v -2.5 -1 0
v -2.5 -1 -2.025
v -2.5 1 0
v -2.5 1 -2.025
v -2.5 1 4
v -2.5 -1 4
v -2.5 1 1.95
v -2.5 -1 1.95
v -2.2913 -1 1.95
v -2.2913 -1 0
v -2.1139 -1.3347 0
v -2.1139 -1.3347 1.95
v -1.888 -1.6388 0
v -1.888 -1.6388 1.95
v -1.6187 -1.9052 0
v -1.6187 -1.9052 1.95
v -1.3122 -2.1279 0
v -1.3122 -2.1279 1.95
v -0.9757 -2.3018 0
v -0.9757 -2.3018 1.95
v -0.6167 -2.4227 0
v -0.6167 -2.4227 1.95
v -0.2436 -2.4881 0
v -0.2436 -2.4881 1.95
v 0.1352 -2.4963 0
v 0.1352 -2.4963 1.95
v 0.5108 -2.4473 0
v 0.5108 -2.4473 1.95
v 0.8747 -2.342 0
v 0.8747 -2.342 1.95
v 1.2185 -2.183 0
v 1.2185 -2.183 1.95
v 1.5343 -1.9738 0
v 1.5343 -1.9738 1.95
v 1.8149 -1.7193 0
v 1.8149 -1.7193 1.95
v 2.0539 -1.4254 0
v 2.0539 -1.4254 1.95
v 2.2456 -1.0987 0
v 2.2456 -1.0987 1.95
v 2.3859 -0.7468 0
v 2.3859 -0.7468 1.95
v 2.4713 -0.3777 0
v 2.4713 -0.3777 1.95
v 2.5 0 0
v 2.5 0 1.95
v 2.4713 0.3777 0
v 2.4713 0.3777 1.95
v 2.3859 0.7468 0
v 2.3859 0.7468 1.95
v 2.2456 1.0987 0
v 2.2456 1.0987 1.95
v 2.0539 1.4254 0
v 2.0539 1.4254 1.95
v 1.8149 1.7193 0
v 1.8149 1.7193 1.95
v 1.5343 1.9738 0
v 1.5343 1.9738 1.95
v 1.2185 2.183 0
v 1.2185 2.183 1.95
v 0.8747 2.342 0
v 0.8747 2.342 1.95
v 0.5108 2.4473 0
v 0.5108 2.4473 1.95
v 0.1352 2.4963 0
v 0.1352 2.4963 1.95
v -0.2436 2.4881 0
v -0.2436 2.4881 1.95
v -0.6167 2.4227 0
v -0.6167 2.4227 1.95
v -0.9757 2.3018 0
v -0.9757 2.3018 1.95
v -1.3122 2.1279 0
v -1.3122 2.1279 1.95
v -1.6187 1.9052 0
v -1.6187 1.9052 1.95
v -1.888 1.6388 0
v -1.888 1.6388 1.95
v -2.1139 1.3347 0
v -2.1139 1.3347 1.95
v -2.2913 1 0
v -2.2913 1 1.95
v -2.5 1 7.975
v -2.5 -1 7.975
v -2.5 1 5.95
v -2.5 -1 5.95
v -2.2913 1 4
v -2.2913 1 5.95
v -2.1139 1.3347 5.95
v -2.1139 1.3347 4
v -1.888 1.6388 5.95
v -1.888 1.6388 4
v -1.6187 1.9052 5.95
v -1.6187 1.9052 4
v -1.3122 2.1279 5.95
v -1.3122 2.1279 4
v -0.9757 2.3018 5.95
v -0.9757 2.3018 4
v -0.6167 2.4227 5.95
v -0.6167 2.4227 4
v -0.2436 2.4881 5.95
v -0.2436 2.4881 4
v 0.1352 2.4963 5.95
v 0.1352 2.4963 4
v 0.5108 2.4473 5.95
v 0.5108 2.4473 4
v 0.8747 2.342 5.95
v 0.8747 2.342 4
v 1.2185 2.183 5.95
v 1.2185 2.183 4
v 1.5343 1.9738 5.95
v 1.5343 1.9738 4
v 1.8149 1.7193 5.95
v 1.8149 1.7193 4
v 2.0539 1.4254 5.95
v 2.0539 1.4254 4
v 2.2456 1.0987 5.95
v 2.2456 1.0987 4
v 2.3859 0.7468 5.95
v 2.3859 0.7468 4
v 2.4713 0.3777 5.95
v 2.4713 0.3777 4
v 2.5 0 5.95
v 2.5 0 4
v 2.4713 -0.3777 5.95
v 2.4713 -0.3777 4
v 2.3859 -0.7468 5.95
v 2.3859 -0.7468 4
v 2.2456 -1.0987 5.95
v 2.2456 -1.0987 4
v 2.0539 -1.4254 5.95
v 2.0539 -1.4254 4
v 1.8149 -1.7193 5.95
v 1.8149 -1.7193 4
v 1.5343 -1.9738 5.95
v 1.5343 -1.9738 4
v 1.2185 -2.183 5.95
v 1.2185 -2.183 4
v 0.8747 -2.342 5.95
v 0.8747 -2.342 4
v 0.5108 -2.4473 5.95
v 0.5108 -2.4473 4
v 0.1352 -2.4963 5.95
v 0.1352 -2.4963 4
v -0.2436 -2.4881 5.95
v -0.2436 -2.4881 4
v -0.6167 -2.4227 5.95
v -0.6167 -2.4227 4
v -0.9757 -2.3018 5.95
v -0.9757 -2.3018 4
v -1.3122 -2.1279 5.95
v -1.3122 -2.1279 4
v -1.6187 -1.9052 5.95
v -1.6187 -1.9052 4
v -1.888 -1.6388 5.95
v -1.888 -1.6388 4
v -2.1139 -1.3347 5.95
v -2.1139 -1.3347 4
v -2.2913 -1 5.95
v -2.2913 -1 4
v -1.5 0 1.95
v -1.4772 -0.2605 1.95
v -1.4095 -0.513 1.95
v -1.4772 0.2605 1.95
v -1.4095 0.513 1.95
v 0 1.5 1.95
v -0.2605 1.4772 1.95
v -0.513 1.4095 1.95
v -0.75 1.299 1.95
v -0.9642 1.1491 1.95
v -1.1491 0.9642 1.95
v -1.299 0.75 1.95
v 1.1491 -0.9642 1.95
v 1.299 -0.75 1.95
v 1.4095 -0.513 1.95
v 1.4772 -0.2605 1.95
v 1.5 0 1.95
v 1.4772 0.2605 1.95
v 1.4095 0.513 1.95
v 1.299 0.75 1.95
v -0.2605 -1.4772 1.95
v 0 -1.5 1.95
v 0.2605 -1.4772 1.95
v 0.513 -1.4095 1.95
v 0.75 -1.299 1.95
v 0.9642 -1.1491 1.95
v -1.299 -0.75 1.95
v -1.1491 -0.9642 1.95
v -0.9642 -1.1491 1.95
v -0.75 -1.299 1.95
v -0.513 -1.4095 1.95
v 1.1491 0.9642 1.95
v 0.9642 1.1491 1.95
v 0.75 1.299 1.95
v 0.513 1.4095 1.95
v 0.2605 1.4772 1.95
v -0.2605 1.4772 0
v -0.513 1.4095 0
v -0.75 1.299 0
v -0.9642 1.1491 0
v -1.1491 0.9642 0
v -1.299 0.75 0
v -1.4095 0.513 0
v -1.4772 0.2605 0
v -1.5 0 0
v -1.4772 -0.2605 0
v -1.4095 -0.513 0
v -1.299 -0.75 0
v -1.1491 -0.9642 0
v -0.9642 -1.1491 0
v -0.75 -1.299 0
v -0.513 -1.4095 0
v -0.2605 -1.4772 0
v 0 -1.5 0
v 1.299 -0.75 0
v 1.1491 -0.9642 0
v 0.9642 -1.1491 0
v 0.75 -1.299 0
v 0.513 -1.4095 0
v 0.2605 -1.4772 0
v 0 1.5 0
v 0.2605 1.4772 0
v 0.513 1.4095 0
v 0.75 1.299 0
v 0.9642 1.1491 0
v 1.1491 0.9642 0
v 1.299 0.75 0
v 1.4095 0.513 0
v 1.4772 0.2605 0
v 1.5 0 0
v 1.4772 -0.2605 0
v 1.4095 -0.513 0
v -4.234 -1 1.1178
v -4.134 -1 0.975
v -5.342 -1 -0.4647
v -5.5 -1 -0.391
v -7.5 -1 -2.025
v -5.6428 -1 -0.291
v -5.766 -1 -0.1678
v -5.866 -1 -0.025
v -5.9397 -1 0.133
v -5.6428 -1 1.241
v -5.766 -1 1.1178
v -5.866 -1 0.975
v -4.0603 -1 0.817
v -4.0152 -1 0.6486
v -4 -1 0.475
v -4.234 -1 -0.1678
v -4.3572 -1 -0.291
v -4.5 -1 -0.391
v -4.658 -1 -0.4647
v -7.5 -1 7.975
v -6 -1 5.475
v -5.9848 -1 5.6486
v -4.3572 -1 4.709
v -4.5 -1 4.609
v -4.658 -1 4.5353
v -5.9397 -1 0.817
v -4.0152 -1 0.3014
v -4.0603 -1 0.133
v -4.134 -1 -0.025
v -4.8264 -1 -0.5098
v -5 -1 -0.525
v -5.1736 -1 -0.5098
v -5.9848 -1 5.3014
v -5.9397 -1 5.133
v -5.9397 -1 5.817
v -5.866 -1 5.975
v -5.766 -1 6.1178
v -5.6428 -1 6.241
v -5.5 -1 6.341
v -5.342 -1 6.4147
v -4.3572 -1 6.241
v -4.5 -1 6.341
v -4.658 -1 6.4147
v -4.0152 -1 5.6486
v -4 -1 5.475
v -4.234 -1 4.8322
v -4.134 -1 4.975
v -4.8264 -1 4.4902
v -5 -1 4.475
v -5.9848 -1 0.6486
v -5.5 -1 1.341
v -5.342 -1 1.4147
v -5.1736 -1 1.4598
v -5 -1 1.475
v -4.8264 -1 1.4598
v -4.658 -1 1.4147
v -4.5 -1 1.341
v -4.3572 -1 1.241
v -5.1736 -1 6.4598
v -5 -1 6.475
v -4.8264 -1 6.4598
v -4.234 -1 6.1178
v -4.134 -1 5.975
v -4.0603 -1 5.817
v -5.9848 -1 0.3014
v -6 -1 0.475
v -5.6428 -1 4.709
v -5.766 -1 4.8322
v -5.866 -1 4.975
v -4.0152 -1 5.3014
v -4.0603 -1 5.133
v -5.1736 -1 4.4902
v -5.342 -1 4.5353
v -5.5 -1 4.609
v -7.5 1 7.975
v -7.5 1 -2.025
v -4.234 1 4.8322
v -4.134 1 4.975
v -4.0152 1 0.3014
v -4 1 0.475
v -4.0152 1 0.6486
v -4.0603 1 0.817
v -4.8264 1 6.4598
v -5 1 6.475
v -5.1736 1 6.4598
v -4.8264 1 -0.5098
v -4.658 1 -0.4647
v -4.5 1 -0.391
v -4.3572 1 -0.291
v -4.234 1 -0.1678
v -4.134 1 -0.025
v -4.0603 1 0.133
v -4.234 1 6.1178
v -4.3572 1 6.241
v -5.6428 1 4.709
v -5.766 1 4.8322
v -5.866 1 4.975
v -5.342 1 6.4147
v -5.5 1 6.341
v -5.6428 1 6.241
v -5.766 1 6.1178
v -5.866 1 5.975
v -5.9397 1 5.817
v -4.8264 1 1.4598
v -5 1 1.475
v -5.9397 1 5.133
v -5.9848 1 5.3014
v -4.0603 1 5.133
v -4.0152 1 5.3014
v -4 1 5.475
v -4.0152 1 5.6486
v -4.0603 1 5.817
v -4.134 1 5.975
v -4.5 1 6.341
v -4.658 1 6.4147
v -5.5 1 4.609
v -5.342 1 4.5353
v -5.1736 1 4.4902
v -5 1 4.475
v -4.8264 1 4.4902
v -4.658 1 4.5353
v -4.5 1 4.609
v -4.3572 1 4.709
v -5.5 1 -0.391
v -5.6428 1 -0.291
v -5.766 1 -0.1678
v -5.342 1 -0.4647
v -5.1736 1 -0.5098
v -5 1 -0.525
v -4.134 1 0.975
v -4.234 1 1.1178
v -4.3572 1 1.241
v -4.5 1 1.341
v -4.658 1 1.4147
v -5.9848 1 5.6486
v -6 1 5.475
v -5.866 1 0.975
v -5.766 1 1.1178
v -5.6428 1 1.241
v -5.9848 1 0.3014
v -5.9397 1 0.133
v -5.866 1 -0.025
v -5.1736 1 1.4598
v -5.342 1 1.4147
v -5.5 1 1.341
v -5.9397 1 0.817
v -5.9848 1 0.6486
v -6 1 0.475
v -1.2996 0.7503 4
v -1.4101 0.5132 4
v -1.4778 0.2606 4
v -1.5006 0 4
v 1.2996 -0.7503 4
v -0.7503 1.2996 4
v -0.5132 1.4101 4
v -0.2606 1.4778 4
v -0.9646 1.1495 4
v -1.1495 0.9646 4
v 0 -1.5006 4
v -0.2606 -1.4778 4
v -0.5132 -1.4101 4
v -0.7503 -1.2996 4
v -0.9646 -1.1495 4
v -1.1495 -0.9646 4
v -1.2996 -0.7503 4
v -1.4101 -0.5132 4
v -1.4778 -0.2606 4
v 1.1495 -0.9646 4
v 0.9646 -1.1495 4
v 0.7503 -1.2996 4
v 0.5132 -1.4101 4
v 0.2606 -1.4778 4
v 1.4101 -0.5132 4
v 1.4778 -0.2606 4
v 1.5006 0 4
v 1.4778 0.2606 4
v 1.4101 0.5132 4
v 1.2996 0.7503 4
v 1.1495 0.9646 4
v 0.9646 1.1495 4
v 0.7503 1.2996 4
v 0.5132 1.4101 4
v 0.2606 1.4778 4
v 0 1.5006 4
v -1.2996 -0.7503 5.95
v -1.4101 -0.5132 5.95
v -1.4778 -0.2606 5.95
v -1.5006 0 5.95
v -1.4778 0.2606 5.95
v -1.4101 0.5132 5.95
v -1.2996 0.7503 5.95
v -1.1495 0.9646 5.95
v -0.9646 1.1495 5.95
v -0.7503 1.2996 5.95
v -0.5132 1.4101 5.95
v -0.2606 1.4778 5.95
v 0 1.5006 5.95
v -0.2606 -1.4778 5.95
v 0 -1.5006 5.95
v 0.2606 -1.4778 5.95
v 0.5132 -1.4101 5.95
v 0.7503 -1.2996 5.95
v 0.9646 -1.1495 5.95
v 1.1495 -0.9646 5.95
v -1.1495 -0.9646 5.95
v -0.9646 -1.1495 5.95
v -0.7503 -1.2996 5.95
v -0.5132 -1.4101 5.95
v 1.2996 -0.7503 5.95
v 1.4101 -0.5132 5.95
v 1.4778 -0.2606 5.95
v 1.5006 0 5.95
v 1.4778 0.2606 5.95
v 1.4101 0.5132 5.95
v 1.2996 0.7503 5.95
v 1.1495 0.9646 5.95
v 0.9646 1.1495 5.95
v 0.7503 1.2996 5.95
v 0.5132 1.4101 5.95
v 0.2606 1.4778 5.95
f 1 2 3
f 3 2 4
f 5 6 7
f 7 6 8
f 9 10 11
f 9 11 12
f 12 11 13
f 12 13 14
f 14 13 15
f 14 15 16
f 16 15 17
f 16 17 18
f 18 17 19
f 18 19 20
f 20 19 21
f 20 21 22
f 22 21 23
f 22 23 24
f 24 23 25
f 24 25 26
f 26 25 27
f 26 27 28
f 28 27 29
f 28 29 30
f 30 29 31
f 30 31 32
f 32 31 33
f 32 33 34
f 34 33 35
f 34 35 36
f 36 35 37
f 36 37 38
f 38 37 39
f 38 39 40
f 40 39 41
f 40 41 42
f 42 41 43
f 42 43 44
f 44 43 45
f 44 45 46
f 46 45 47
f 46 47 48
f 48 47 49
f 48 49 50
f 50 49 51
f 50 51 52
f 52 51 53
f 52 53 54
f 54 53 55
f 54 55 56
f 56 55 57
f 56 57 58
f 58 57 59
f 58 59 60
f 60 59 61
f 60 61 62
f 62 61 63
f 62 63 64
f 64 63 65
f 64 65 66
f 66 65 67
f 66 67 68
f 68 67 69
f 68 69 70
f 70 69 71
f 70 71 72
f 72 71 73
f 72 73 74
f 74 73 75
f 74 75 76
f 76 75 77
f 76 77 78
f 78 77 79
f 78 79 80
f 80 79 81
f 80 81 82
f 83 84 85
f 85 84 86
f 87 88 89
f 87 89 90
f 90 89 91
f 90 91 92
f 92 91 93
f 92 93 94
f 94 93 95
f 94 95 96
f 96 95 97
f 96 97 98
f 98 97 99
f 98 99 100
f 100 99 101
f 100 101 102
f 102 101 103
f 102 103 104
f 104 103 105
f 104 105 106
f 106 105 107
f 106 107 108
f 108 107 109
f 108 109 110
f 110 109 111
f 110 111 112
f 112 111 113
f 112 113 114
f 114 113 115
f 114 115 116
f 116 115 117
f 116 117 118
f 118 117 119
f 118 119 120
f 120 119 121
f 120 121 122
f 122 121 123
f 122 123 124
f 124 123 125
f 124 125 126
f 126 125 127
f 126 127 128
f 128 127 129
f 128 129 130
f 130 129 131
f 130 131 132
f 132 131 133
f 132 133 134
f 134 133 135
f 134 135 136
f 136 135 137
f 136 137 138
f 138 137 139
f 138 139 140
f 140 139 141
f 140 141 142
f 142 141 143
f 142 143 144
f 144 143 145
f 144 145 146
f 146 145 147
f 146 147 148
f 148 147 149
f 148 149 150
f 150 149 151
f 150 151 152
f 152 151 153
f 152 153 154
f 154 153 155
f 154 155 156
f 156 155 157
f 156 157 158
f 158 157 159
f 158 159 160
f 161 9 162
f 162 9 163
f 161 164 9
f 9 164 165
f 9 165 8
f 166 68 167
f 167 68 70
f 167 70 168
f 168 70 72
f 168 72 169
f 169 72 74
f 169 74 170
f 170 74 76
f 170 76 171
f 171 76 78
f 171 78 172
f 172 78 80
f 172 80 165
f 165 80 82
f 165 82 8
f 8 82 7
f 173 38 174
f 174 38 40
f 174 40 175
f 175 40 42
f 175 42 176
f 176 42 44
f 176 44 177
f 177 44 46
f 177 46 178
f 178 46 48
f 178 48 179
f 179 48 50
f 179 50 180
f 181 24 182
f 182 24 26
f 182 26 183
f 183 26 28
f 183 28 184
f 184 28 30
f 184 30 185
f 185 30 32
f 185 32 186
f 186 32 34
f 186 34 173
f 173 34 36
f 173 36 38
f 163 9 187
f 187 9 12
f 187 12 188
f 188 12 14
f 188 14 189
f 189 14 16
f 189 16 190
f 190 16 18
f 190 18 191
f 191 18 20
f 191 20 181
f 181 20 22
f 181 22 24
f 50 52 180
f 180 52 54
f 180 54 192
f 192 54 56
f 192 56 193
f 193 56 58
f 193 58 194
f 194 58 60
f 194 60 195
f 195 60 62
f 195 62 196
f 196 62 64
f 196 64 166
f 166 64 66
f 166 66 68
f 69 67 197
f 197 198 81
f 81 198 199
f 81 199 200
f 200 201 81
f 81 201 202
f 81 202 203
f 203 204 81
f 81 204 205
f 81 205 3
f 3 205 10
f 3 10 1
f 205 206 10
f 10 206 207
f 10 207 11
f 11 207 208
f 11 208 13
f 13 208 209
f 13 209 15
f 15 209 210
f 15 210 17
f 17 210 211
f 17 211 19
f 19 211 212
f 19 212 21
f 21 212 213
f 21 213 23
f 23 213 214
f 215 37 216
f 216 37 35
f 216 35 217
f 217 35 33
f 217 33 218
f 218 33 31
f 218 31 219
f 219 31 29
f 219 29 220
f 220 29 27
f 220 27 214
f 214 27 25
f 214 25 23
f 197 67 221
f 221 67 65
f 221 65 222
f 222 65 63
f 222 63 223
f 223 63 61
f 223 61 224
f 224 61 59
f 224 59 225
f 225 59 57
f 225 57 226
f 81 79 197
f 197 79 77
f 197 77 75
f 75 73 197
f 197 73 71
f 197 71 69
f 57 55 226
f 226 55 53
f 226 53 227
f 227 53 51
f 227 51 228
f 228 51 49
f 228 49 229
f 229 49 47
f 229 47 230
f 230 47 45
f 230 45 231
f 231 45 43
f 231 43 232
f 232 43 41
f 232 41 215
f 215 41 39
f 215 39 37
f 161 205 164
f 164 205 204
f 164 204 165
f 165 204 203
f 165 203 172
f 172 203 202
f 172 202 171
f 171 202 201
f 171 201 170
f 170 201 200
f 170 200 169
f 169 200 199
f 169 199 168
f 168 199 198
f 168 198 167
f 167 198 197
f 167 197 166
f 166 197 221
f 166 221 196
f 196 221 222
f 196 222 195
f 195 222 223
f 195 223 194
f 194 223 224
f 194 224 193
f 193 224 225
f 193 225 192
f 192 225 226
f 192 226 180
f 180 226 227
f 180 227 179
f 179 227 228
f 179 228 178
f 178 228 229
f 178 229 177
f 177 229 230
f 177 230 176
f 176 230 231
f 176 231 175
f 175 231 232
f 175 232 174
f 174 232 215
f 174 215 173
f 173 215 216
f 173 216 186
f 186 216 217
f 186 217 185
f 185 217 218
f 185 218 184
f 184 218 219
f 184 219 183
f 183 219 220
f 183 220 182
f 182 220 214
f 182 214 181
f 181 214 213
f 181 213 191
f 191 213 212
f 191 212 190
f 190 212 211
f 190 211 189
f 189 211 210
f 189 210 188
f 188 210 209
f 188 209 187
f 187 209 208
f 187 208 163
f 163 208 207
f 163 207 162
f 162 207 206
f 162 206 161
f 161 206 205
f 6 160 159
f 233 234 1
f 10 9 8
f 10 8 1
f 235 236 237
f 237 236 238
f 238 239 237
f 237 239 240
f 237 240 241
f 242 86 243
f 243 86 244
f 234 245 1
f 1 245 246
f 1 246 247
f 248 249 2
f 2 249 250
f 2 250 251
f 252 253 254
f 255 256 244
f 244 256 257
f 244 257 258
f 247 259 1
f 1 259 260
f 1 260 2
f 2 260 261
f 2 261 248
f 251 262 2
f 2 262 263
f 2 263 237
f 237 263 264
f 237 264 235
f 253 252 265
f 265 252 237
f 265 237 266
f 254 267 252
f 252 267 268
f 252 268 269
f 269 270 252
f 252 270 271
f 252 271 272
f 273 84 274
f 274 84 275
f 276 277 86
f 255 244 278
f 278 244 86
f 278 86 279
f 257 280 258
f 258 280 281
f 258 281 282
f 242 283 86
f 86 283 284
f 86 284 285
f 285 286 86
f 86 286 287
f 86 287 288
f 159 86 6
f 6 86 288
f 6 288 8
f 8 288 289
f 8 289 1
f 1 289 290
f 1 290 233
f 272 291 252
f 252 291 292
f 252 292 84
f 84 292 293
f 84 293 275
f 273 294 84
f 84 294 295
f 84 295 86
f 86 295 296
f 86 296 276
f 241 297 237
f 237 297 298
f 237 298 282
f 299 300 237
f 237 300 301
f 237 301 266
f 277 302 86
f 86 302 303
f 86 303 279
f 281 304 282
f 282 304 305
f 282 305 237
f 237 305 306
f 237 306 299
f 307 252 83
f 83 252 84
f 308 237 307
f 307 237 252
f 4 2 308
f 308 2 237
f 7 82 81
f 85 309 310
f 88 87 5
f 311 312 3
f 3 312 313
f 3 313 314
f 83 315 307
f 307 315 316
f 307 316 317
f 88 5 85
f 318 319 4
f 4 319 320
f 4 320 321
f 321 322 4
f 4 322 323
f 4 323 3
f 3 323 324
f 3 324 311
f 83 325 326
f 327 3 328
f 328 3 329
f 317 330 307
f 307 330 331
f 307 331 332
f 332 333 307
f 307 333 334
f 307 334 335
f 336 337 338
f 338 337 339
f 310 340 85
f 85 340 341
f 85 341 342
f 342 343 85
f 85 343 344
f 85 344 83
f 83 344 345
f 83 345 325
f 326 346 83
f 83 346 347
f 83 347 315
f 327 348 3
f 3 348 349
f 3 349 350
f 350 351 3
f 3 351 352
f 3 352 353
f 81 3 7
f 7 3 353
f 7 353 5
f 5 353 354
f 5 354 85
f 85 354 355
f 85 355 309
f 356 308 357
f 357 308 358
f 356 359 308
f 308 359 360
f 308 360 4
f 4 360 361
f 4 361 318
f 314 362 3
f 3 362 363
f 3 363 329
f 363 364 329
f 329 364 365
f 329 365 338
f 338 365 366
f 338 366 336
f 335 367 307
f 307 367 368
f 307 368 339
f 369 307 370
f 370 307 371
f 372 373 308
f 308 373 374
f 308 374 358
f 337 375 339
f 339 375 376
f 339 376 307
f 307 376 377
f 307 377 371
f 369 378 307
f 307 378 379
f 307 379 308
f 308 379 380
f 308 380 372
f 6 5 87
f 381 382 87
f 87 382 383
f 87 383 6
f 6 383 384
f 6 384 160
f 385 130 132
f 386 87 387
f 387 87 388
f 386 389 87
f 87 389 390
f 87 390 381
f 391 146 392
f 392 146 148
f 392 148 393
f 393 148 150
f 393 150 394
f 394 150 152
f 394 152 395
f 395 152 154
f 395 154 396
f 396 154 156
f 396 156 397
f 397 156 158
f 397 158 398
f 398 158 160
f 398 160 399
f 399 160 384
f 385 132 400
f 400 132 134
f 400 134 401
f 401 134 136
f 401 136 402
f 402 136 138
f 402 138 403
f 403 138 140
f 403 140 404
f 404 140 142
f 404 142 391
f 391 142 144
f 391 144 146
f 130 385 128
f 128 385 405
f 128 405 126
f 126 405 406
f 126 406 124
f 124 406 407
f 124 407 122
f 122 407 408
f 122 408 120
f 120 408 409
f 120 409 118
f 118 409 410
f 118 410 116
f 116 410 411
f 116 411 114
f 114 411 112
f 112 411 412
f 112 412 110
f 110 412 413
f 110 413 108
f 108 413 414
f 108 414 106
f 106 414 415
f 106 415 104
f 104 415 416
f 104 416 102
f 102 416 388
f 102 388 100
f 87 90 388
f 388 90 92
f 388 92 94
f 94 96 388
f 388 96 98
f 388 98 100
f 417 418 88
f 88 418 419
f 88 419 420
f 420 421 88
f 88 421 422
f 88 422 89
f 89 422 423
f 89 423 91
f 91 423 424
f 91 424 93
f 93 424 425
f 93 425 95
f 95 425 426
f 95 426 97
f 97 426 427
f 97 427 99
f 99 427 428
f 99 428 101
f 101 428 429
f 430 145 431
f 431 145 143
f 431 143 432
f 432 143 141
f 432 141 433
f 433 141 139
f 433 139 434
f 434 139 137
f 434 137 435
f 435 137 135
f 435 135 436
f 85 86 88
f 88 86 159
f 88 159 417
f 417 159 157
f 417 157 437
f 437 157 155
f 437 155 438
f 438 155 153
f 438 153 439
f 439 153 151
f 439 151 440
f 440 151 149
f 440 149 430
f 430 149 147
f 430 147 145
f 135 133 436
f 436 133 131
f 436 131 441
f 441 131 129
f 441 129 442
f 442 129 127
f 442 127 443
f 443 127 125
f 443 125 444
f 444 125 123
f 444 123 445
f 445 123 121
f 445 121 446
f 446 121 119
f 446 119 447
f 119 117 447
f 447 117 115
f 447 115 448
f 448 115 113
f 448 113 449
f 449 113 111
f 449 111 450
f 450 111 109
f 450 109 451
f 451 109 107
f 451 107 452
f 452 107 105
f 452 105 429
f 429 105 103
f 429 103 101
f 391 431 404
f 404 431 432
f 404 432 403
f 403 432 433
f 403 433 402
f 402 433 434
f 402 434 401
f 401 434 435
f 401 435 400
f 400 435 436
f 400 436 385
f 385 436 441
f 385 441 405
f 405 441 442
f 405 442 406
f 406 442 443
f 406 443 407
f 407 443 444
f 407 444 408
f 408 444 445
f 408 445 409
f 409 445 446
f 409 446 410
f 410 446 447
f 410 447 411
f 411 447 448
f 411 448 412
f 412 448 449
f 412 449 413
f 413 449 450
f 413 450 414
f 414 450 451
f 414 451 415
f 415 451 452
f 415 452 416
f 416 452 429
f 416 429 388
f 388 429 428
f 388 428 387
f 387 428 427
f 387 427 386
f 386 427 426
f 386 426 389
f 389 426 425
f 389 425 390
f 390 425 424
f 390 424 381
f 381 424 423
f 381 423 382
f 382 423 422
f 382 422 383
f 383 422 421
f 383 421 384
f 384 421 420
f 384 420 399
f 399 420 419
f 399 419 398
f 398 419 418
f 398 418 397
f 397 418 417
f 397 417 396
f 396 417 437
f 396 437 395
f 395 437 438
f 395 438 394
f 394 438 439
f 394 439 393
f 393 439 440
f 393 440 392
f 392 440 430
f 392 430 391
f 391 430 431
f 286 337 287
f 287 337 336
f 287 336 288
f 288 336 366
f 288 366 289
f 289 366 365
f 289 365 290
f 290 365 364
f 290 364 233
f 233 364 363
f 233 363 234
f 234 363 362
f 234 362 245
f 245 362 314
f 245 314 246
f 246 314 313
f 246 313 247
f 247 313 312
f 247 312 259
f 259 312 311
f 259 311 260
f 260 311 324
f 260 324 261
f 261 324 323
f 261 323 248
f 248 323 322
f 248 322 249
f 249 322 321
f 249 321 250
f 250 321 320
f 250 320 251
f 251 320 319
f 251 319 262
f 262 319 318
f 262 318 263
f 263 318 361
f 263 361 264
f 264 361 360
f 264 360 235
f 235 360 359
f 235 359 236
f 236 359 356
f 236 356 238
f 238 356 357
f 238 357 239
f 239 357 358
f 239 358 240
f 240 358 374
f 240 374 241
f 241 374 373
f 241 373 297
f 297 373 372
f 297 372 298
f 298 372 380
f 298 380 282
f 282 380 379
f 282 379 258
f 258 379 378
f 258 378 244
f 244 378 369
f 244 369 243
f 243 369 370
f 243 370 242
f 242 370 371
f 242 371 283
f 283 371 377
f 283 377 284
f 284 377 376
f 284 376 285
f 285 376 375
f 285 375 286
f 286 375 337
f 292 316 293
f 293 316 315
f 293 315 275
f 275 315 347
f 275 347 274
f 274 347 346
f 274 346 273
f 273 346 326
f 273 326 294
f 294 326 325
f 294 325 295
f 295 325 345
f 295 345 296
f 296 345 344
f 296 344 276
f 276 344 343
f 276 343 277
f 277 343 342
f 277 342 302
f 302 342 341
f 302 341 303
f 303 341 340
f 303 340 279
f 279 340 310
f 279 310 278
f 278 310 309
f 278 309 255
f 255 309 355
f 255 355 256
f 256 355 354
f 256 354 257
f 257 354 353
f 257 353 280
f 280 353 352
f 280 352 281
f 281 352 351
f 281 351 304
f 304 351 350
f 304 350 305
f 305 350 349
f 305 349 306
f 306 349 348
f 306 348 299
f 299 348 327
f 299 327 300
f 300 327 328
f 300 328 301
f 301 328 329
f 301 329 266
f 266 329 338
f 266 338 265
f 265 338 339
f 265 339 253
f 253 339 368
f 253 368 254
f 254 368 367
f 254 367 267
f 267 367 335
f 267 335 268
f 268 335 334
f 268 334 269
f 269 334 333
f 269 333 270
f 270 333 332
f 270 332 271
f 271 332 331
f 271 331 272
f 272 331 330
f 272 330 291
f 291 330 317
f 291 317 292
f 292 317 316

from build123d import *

# Parameters (mm, degrees)
SKETCH2_R                = 2.5
SKETCH2_R_2              = 1.5
BOSS_EXTRUDE1_DEPTH      = 1.95
SKETCH3_W                = 5
SKETCH3_H                = 10
BOSS_EXTRUDE2_DEPTH      = 1
BOSS_EXTRUDE2_DEPTH_BACK = 1
SKETCH5_R                = 2.5
SKETCH5_R_2              = 1.50060411
BOSS_EXTRUDE3_DEPTH      = 0.975
BOSS_EXTRUDE3_DEPTH_BACK = 0.975
SKETCH6_W                = 1.95
SKETCH6_H                = 2
BOSS_EXTRUDE4_DEPTH      = 0.208712
SKETCH7_R                = 1
CUT_EXTRUDE1_DEPTH       = 10


with BuildPart() as part:
    # Sketch2 → Boss-Extrude1 (new body)
    with BuildSketch(Plane.XY):
        Circle(SKETCH2_R)
        Circle(SKETCH2_R_2, mode=Mode.SUBTRACT)
    extrude(amount=BOSS_EXTRUDE1_DEPTH)



with BuildPart() as body_2:
    # Sketch3 → Boss-Extrude2 (new body, two sides)
    with BuildSketch(Plane(origin=(0, 0, 0), x_dir=(1, 0, 0), z_dir=(0, 1, 0))) as boss_extrude2_sk:
        with Locations((-5, -2.975)):
            Rectangle(SKETCH3_W, SKETCH3_H)
    extrude(amount=BOSS_EXTRUDE2_DEPTH)
    extrude(boss_extrude2_sk.sketch, amount=-BOSS_EXTRUDE2_DEPTH_BACK)


with BuildPart() as body_3:
    # Sketch5 → Boss-Extrude3 (new body, two sides)
    with BuildSketch(Plane(origin=(0, 0, 4.975), x_dir=(0, -1, 0), z_dir=(0, 0, 1))) as boss_extrude3_sk:
        Circle(SKETCH5_R)
        Circle(SKETCH5_R_2, mode=Mode.SUBTRACT)
    extrude(amount=BOSS_EXTRUDE3_DEPTH)
    extrude(boss_extrude3_sk.sketch, amount=-BOSS_EXTRUDE3_DEPTH_BACK)


with BuildPart() as part_1:
    add(part.part)

    add(body_2.part)  # Boss-Extrude4 merges body 2

    add(body_3.part)  # Boss-Extrude4 merges body 3
    # Sketch6 → Boss-Extrude4 (add)
    with BuildSketch(Plane(origin=(-2.5, 0, 0), x_dir=(0, 0, -1), z_dir=(1, 0, 0))):
        with Locations((-4.975, 0)):
            Rectangle(SKETCH6_W, SKETCH6_H)
        with Locations((-0.975, 0)):
            Rectangle(SKETCH6_W, SKETCH6_H)
    extrude(amount=BOSS_EXTRUDE4_DEPTH)

    # Sketch7 → Cut-Extrude1 (cut)
    with BuildSketch(Plane(origin=(0, 1, 0), x_dir=(1, 0, 0), z_dir=(0, 1, 0))):
        with Locations((-5, -5.475)):
            Circle(SKETCH7_R)
        with Locations((-5, -0.475)):
            Circle(SKETCH7_R)
    extrude(amount=-CUT_EXTRUDE1_DEPTH, mode=Mode.SUBTRACT)


solid = part_1.part
